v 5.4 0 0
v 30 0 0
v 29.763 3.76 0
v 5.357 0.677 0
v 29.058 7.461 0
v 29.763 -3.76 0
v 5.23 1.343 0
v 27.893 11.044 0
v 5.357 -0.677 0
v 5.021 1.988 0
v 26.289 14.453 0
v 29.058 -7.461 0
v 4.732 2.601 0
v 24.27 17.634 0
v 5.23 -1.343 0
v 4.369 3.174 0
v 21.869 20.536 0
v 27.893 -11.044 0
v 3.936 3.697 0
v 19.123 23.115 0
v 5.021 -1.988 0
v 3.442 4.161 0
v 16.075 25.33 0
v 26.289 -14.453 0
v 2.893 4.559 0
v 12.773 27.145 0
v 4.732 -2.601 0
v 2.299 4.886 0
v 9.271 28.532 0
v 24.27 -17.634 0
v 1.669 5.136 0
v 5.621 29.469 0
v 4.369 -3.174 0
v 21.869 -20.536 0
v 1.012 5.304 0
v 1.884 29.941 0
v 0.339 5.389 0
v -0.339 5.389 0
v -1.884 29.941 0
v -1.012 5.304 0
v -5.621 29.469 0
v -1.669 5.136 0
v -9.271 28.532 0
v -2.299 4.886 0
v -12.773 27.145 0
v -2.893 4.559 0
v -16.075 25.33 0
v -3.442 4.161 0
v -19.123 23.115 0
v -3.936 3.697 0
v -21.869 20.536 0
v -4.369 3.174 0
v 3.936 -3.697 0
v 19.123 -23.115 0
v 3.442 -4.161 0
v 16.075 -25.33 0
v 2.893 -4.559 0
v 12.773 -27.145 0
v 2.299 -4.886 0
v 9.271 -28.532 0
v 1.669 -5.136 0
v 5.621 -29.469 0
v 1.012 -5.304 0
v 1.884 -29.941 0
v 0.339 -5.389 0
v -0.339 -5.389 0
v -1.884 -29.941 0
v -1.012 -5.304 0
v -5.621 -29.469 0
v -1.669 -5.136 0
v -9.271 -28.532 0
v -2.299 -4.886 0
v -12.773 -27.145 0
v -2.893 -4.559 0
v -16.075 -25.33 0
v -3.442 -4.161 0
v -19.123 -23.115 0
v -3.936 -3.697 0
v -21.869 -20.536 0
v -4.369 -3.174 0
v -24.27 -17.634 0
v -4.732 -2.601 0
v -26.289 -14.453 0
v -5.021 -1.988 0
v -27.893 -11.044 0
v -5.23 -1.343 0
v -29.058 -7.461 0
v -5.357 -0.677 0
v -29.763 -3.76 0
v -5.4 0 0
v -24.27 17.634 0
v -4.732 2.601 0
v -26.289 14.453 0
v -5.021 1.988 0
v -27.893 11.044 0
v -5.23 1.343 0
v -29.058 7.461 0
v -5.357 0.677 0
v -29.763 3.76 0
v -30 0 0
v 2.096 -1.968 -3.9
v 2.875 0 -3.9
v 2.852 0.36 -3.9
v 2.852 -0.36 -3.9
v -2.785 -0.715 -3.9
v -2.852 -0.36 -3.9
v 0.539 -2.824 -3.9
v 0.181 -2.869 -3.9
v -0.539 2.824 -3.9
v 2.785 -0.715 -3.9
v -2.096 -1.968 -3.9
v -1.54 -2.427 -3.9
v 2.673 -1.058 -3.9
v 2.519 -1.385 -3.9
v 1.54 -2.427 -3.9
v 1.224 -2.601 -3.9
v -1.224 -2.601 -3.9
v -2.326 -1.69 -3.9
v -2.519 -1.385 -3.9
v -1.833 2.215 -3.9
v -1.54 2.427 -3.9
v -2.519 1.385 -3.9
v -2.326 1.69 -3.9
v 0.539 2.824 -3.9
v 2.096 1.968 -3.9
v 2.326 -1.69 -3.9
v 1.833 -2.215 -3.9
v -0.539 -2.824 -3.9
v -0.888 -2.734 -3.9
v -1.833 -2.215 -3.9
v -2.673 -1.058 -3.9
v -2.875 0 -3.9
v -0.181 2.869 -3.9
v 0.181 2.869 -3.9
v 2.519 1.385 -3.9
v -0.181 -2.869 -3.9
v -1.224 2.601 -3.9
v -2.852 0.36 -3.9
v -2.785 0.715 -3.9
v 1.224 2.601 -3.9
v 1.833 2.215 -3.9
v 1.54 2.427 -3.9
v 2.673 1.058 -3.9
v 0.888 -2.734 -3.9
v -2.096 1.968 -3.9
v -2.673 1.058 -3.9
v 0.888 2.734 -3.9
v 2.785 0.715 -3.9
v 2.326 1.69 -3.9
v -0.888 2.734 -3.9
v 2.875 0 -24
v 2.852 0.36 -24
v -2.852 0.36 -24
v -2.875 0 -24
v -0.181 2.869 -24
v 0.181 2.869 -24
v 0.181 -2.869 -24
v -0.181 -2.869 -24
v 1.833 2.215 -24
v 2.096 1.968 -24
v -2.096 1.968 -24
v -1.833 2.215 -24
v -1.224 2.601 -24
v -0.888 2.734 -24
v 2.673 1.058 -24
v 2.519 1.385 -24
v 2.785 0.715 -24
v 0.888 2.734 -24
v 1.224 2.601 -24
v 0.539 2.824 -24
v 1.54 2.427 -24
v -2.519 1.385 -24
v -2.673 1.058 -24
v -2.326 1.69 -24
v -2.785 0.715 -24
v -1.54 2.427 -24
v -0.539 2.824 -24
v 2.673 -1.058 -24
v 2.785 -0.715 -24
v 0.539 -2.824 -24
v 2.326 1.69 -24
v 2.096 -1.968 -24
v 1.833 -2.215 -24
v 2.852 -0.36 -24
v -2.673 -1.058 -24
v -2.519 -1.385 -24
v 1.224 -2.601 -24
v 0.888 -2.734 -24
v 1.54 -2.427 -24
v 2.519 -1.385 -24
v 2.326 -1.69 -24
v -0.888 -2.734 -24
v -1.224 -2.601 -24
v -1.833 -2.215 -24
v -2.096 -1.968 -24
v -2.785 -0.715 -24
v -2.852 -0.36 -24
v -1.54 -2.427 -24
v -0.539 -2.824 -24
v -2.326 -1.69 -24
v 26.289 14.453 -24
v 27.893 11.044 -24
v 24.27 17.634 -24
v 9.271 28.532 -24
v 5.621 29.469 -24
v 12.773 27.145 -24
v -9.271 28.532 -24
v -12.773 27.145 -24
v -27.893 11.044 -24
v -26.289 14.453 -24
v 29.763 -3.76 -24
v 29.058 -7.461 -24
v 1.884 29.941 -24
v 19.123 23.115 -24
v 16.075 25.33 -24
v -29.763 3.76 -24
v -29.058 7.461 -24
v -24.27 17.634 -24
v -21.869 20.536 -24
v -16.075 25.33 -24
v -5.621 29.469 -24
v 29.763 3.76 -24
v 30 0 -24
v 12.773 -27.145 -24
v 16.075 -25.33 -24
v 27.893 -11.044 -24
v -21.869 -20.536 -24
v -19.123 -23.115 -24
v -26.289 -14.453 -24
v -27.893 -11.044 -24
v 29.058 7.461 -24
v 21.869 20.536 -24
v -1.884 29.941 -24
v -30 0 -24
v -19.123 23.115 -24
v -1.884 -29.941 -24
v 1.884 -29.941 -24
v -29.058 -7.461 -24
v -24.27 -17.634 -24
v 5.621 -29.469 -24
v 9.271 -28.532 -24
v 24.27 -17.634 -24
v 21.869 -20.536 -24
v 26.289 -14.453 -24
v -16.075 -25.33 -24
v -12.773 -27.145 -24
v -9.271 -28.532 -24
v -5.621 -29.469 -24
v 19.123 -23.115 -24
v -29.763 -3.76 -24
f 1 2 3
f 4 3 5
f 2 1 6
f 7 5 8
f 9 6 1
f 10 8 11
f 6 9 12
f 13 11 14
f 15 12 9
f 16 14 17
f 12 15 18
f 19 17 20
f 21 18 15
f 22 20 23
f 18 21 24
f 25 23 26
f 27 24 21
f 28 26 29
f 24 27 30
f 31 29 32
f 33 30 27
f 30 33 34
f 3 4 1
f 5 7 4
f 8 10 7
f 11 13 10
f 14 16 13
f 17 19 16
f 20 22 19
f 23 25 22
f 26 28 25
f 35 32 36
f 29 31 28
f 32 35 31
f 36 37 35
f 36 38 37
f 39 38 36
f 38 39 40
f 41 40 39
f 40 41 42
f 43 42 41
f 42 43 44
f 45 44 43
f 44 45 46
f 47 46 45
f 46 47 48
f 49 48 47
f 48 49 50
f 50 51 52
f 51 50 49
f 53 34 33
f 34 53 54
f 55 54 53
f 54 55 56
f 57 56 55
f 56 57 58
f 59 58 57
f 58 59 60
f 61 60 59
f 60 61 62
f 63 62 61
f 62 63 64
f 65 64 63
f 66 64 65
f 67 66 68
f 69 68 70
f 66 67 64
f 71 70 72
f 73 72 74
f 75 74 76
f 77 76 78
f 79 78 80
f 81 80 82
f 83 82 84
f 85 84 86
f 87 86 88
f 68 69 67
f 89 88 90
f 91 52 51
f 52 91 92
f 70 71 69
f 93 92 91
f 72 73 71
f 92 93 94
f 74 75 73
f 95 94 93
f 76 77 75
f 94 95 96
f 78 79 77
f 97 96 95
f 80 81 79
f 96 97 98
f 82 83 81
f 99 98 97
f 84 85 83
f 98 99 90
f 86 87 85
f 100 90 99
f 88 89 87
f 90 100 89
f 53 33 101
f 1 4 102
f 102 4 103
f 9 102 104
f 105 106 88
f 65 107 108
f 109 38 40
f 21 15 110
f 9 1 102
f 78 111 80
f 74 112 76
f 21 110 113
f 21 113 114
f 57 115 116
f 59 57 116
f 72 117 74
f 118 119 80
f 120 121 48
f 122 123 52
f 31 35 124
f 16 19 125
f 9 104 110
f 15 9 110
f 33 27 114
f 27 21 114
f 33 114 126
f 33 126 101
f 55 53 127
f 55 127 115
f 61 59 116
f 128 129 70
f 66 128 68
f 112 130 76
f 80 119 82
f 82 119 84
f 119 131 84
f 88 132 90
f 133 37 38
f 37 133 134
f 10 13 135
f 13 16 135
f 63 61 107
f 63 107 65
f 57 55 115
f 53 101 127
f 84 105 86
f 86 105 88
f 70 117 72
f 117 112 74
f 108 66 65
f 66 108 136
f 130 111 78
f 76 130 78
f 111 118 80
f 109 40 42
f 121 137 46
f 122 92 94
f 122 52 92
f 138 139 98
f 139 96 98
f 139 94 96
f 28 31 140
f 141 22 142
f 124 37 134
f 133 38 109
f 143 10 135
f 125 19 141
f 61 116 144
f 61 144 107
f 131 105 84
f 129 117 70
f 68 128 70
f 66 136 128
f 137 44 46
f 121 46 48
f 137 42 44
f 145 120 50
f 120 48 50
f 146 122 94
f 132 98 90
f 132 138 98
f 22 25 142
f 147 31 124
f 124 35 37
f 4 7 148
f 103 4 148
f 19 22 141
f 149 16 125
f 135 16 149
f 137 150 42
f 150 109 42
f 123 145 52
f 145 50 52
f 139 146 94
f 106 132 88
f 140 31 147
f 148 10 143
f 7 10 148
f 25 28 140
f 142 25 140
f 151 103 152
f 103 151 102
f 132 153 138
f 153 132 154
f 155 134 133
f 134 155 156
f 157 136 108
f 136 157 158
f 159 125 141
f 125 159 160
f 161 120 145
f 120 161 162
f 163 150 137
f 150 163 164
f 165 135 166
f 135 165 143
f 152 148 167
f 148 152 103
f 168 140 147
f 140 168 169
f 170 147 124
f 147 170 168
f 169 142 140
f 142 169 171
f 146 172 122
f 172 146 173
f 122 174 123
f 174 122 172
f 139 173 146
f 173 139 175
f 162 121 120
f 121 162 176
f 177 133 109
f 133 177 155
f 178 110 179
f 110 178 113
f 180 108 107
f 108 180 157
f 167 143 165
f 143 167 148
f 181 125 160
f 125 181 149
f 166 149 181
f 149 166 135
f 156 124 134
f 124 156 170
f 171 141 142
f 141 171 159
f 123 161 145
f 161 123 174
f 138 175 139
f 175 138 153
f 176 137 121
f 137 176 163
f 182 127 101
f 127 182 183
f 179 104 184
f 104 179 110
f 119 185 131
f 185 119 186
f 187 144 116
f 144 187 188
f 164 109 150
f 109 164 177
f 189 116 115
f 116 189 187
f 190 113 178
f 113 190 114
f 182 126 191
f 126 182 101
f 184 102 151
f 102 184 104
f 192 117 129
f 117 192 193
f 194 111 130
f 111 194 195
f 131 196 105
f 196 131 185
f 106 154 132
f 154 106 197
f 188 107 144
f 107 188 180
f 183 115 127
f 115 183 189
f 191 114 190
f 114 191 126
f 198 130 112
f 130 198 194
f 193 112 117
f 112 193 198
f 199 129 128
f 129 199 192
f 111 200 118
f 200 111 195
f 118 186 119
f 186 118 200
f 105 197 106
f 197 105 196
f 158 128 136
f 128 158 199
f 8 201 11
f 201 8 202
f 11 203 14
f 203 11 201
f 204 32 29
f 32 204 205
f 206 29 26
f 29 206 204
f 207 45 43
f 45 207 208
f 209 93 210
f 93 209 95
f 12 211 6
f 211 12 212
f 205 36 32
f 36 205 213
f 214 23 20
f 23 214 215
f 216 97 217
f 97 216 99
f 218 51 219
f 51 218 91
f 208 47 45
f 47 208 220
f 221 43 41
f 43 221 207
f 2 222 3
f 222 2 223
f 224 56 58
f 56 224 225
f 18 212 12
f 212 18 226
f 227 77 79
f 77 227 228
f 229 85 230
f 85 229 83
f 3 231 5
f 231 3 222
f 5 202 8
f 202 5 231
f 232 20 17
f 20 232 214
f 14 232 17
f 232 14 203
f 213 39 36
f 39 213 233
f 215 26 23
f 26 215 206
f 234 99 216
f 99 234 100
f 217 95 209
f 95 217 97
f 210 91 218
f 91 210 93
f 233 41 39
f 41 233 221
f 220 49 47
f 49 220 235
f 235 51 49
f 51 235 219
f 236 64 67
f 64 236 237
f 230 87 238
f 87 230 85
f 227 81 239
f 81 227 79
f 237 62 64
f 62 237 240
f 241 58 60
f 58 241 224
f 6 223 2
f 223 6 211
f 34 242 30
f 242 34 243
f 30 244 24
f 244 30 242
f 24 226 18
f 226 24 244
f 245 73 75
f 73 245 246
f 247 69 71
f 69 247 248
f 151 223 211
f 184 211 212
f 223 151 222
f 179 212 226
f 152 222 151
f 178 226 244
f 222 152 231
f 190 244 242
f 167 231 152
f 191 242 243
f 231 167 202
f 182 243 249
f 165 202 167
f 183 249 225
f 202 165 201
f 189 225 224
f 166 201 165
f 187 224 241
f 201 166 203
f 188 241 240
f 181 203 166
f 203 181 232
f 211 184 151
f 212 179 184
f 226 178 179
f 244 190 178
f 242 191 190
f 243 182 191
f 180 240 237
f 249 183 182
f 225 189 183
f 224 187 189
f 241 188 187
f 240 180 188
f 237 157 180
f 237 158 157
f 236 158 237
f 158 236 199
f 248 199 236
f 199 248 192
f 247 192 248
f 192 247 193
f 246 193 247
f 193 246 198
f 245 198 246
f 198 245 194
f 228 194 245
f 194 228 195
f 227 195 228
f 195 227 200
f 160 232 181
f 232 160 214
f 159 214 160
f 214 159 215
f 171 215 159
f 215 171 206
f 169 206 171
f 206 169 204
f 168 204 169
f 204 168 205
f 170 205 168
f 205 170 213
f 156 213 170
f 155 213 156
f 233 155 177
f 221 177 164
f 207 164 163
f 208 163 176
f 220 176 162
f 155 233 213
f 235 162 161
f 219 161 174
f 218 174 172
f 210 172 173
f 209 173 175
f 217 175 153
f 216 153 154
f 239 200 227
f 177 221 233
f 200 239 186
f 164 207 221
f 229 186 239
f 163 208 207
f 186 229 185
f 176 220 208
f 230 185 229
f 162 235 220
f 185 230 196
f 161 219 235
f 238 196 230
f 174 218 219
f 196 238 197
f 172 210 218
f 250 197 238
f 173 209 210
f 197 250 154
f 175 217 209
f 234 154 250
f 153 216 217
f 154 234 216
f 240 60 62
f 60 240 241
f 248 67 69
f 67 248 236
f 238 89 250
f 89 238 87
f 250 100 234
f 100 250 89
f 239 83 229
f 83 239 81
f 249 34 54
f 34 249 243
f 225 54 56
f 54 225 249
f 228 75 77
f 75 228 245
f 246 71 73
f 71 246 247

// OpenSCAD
$fn = 50;


difference() {
	union() {
		translate(v = [0, 0, -24.0000000000]) {
			cylinder(h = 24, r = 30.0000000000);
		}
	}
	union() {
		translate(v = [0, 0, 0]) {
			rotate(a = [0, 0, 0]) {
				difference() {
					union() {
						translate(v = [0, 0, -27.0000000000]) {
							cylinder(h = 27, r = 2.6000000000);
						}
						translate(v = [0, 0, -3.9000000000]) {
							cylinder(h = 3.9000000000, r1 = 2.8750000000, r2 = 5.4000000000);
						}
						translate(v = [0, 0, -27.0000000000]) {
							cylinder(h = 27, r = 2.8750000000);
						}
						translate(v = [0, 0, -27.0000000000]) {
							cylinder(h = 27, r = 2.6000000000);
						}
					}
					union();
				}
			}
		}
	}
}
